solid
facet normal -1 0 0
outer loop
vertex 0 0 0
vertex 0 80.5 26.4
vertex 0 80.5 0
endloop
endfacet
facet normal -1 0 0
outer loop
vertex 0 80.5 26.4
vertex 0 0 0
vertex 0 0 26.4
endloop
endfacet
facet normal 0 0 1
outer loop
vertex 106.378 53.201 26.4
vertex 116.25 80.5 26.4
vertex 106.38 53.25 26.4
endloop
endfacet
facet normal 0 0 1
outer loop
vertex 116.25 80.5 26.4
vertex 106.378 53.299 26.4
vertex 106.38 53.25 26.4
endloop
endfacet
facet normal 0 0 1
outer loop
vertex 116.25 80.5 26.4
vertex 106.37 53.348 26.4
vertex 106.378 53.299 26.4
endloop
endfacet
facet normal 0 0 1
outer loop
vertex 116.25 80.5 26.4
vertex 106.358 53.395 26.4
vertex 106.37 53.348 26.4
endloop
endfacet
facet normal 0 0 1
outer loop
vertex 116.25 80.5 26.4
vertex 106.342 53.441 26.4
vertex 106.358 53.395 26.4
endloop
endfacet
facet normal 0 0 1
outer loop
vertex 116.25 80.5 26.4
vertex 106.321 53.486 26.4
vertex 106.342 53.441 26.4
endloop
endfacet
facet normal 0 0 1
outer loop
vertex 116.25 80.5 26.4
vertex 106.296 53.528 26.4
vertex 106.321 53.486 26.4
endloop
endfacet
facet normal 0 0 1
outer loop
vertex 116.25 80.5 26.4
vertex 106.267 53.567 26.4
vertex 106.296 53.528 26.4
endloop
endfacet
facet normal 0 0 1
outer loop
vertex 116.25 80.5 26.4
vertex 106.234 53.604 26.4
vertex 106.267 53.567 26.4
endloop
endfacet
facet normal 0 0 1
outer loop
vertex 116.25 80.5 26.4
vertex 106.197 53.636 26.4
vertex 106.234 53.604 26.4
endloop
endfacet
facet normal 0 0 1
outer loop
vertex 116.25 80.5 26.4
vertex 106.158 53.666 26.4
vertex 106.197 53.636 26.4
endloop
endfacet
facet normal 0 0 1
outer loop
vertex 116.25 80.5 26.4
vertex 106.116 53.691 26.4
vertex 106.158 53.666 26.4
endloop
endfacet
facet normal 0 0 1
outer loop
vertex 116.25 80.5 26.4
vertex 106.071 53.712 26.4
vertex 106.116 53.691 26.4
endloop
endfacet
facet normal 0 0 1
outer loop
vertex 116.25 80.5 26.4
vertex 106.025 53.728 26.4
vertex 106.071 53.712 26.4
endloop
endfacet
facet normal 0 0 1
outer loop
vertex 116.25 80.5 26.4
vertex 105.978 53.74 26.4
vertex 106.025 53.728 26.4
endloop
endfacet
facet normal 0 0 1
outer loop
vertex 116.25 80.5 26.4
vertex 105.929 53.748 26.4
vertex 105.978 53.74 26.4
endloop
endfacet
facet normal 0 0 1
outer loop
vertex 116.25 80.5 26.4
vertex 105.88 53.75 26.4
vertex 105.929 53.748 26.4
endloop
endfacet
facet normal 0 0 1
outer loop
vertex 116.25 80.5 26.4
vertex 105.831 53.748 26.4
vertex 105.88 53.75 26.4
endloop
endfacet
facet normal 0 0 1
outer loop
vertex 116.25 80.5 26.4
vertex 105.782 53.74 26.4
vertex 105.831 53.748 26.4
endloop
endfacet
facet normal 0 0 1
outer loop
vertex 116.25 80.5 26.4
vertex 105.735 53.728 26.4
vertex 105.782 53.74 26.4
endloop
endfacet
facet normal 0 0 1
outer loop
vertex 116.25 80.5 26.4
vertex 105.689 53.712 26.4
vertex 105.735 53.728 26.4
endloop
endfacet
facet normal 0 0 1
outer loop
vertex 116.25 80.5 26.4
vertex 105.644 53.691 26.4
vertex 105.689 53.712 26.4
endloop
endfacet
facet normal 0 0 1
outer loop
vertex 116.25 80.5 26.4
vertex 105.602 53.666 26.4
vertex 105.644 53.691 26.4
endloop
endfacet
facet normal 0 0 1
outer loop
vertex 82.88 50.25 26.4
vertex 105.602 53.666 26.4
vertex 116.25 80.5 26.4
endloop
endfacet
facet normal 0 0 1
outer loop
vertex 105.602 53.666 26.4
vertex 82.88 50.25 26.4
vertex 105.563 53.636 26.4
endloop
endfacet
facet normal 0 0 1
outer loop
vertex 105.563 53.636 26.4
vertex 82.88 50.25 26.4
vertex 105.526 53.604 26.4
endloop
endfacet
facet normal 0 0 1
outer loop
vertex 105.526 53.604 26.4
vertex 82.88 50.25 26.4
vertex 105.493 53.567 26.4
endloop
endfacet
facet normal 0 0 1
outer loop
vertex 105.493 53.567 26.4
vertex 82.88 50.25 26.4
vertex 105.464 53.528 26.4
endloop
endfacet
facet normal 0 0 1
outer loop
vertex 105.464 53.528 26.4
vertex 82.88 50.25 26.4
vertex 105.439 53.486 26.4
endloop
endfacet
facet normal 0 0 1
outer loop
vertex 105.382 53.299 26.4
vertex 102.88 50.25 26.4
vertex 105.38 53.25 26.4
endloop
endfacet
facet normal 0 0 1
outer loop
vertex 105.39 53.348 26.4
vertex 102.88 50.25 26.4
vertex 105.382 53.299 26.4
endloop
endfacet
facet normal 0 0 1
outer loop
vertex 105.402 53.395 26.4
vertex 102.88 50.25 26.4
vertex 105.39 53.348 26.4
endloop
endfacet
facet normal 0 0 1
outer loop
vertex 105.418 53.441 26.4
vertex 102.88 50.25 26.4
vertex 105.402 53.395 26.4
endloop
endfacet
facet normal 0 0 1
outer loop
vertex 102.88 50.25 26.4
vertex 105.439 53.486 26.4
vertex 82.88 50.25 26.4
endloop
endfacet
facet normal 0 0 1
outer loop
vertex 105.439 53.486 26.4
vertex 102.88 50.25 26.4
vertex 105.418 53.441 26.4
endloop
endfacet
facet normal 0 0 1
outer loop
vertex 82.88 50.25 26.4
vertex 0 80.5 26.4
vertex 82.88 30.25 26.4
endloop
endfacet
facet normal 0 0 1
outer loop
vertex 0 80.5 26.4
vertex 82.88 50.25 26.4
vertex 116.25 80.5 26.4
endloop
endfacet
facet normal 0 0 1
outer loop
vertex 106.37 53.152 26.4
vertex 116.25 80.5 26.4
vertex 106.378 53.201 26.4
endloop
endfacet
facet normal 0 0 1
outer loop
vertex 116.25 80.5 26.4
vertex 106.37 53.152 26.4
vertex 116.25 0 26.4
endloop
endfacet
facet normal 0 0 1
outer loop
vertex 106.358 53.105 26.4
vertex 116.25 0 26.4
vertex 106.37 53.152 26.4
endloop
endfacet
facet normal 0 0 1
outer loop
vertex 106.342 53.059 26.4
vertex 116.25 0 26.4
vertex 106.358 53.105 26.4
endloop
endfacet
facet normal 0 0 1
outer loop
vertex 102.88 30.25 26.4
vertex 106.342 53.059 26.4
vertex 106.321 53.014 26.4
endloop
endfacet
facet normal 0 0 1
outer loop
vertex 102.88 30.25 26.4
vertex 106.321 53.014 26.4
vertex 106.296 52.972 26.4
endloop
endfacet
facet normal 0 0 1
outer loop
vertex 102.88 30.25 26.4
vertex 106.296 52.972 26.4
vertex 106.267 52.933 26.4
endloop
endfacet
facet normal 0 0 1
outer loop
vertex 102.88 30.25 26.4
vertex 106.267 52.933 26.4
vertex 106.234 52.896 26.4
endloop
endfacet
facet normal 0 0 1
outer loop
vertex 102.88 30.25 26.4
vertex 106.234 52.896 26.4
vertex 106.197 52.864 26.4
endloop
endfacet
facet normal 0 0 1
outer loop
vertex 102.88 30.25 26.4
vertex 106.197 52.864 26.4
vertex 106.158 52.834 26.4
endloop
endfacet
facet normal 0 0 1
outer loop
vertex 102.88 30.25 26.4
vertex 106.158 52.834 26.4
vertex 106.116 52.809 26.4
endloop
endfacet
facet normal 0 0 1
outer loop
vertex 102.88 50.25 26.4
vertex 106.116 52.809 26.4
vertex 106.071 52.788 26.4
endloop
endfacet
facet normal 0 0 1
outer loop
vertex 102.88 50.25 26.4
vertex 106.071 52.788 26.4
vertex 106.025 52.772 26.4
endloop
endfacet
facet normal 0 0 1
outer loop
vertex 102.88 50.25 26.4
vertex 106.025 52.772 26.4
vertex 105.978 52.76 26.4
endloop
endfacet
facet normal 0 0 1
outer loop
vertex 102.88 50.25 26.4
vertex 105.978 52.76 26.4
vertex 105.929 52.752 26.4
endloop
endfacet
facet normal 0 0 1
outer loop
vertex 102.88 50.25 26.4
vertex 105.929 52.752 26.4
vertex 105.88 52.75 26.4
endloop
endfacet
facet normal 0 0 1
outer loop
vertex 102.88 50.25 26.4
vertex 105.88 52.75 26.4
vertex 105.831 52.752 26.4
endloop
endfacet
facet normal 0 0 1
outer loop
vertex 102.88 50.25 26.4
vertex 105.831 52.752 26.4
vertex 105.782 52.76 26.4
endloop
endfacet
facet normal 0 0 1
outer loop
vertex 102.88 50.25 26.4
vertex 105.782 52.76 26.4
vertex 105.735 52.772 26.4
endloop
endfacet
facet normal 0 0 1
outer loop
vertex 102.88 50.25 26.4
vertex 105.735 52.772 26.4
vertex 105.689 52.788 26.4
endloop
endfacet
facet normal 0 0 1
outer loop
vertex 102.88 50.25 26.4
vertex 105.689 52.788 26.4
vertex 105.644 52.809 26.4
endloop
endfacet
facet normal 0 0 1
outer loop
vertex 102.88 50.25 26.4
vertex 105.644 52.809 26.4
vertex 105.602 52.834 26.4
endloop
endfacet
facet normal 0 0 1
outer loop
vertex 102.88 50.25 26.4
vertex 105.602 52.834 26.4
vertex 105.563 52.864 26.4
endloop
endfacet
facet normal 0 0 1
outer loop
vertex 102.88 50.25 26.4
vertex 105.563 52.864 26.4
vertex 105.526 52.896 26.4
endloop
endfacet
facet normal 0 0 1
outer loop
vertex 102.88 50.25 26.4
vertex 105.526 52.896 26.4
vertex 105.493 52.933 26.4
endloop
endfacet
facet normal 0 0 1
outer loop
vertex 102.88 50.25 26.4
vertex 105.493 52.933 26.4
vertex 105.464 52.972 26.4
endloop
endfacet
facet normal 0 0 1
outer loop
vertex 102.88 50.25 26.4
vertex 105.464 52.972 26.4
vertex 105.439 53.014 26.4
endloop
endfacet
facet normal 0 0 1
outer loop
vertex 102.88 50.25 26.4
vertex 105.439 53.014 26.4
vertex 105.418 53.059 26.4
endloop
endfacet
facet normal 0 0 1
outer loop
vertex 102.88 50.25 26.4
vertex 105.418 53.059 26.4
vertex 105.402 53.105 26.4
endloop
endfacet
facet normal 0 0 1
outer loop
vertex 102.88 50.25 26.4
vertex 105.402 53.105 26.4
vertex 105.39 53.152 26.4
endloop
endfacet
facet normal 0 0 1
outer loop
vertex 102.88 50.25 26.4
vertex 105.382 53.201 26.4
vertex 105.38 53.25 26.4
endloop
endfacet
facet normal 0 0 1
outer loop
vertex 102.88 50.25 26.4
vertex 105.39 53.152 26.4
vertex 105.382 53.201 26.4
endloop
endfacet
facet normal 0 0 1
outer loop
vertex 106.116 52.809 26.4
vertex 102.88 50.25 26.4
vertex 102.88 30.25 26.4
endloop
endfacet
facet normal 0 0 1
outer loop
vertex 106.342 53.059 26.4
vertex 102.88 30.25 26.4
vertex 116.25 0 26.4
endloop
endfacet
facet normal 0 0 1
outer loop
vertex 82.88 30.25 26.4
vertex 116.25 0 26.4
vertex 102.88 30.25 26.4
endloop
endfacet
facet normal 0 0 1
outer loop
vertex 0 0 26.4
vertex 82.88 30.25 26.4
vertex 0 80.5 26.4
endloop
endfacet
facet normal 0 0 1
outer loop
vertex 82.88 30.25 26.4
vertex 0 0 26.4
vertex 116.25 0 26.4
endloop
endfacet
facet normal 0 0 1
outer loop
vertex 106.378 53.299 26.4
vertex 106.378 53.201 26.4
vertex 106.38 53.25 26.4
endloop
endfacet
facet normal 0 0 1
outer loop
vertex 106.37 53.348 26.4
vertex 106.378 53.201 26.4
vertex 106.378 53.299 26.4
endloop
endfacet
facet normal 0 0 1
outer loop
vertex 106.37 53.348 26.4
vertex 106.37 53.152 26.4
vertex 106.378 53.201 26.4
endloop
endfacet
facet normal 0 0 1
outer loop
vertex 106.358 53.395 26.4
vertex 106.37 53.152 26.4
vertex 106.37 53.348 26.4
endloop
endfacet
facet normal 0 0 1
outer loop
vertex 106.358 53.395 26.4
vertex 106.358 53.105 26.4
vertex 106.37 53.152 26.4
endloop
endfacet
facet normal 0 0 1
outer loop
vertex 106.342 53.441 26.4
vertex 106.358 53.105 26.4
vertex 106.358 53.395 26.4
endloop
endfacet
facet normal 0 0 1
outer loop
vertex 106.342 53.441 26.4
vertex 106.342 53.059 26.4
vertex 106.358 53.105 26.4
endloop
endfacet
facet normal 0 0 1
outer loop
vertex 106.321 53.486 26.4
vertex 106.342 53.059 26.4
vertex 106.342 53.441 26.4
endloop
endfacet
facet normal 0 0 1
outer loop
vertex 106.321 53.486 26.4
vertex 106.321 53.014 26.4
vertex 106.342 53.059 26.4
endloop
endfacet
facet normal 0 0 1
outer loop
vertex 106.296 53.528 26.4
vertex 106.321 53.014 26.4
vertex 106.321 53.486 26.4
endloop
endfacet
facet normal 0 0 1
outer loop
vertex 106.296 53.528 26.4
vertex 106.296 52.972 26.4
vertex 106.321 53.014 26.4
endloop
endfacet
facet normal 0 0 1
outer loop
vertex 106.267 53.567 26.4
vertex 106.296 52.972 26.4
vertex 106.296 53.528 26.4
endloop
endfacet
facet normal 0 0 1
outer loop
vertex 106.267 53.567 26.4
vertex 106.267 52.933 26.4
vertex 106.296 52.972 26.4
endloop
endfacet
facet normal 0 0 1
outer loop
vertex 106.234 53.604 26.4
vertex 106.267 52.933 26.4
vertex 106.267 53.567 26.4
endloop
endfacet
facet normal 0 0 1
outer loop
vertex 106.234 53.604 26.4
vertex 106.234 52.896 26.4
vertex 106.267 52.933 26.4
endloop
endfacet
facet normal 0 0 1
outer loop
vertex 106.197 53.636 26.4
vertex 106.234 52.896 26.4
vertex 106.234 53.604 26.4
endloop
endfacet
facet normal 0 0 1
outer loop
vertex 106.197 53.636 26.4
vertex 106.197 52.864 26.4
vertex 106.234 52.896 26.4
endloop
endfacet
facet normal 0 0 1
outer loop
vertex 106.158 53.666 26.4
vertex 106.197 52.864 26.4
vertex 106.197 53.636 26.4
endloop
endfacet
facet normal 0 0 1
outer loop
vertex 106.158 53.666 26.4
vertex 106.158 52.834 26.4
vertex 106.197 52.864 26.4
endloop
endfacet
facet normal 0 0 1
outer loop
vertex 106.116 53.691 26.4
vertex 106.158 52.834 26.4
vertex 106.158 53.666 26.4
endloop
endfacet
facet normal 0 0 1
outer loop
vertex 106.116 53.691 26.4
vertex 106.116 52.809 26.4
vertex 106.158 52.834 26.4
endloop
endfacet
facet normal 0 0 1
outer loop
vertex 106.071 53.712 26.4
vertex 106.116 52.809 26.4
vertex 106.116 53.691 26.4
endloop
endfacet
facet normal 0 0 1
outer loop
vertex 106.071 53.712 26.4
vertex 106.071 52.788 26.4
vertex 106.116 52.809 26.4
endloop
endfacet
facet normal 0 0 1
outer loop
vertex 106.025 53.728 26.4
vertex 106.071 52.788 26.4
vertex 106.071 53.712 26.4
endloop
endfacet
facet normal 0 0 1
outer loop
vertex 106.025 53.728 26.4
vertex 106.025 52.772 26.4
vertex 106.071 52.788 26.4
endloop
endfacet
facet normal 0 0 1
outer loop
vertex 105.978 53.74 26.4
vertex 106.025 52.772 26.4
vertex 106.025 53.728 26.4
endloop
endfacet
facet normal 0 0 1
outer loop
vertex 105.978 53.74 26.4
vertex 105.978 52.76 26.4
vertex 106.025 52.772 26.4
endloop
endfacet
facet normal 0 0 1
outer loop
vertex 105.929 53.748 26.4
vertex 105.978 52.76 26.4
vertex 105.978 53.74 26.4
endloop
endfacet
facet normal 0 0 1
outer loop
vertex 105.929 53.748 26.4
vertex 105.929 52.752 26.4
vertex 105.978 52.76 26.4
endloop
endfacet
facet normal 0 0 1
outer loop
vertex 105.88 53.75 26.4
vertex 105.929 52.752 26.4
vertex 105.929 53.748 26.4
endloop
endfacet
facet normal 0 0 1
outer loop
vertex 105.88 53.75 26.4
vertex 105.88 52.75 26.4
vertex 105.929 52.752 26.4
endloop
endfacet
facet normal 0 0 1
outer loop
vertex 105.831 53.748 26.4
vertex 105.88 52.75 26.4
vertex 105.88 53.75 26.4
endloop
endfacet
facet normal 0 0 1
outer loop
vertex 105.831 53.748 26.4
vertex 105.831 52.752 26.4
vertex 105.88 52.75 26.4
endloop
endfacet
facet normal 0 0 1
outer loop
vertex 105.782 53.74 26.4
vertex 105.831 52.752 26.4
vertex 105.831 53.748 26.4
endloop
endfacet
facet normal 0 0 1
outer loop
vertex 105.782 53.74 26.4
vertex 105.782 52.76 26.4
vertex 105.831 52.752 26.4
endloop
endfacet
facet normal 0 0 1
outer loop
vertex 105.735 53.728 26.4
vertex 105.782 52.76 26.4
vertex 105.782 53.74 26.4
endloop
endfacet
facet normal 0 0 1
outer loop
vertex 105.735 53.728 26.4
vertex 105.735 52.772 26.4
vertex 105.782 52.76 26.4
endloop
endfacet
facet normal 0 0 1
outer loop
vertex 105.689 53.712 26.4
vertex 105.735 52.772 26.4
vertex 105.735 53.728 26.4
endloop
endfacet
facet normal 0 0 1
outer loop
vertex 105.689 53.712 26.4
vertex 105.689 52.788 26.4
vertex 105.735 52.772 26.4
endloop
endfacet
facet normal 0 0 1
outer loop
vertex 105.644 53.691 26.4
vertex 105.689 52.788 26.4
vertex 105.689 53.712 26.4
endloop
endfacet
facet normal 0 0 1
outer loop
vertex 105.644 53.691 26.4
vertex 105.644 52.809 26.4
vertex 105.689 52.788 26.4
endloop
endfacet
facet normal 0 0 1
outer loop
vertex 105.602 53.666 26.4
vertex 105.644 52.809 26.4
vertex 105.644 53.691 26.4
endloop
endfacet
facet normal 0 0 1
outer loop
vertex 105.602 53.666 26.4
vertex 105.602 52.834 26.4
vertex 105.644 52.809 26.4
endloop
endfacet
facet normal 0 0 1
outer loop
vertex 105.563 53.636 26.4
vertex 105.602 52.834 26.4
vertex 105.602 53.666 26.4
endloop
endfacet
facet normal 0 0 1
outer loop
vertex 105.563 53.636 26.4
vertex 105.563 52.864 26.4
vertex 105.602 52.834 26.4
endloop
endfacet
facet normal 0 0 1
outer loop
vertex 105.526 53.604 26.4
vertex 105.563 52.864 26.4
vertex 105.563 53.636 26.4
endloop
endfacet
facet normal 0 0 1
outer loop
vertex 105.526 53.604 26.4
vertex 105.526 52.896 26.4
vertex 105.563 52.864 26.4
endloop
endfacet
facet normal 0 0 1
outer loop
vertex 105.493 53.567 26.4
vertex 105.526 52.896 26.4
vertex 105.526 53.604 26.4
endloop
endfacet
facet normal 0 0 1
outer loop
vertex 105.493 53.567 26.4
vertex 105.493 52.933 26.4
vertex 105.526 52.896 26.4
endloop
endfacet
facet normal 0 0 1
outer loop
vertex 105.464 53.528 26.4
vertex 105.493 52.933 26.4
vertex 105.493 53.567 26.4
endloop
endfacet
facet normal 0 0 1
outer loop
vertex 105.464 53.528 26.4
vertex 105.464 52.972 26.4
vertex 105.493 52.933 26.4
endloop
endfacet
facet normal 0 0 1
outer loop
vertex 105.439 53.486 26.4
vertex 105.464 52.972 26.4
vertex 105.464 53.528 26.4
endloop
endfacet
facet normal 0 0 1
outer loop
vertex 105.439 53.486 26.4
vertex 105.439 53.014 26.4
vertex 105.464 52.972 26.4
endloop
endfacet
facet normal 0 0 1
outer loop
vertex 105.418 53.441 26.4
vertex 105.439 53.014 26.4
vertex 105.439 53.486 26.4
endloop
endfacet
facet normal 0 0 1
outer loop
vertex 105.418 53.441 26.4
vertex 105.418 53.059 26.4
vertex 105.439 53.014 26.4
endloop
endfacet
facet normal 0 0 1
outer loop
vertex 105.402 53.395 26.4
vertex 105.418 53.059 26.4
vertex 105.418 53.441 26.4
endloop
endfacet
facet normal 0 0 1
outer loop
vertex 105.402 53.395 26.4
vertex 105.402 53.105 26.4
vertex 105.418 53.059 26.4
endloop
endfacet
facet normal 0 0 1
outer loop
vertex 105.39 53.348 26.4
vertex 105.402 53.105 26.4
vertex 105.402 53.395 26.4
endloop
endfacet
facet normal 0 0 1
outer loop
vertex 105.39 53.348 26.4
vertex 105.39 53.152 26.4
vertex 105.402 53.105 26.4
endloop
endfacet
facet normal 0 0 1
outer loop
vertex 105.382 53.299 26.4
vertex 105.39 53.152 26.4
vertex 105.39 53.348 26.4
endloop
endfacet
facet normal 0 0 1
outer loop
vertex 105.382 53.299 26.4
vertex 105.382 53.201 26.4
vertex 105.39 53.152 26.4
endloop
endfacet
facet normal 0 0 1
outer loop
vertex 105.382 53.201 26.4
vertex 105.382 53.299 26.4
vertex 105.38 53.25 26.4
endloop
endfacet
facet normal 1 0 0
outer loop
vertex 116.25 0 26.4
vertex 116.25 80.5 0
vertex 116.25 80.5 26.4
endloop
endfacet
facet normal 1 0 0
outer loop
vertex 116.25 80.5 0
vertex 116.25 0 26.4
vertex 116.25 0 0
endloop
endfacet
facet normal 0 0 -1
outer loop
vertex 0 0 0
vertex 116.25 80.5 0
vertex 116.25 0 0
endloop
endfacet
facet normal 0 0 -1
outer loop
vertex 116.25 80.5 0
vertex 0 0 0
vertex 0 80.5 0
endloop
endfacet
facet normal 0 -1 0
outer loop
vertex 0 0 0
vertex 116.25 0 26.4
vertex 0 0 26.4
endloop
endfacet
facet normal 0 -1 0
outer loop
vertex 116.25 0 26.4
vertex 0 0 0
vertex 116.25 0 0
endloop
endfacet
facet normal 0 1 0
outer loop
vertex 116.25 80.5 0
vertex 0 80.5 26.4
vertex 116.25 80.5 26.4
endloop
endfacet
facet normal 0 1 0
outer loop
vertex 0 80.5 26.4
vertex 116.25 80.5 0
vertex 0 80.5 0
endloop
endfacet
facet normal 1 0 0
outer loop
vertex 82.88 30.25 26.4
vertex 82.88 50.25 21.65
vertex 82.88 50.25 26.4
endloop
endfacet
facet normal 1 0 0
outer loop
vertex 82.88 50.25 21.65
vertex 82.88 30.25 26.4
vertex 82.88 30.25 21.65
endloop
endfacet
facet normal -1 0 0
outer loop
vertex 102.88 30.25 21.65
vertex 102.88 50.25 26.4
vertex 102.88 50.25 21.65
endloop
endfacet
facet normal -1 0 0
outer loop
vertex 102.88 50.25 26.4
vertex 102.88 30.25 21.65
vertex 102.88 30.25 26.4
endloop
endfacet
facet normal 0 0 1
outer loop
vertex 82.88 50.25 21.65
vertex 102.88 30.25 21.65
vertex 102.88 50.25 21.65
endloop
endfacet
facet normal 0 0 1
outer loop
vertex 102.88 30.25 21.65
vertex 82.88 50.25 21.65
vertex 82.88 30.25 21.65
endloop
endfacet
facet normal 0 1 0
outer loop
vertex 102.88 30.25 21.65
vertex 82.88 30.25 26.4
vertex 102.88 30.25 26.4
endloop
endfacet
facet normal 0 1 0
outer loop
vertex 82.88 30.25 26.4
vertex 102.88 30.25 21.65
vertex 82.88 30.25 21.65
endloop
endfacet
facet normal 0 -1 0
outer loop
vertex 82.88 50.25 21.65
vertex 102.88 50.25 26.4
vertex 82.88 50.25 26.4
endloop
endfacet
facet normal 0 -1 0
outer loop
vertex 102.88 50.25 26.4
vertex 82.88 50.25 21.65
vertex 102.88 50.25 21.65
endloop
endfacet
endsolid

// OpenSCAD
// Opentrons Calibration Adapter - Thermocycler Module
// loadName: opentrons_calibration_adapter_thermocycler_module
// Auto-generated by labware_to_stl.py from Opentrons V2 labware definition

$fn = 64;

difference() {
    // ── Labware body ──────────────────────────────────────────────
    cube([116.2500, 80.5000, 26.4000]);

    // ── Well cutouts ──────────────────────────────────────────────
    // Well A1
    translate([82.8800, 30.2500, 21.6500])
        cube([20.0000, 20.0000, 5.7500]);
    // Well B1
    translate([105.8800, 53.2500, 26.4000])
        cylinder(h=1.0000, r=0.5000, $fn=$fn);
}
